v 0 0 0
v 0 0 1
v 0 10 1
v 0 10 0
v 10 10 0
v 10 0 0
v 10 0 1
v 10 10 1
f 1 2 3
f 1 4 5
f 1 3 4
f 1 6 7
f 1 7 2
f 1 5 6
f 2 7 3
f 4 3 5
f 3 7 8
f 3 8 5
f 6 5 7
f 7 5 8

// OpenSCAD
/* Warning, this is a very basic generator with a lot of approximation 
input data : [VQFN, Y5X, 10x10x1.0mm, 72, , A, C04-00202A]
generated by com.zoubworld.electronics.cad.model3d.Basic
Date : Sun Feb 15 10:50:48 CET 2026
*/

//body
color("black")
translate([0,0,0])
cube([10.0,10.0,1.0], center=false);
